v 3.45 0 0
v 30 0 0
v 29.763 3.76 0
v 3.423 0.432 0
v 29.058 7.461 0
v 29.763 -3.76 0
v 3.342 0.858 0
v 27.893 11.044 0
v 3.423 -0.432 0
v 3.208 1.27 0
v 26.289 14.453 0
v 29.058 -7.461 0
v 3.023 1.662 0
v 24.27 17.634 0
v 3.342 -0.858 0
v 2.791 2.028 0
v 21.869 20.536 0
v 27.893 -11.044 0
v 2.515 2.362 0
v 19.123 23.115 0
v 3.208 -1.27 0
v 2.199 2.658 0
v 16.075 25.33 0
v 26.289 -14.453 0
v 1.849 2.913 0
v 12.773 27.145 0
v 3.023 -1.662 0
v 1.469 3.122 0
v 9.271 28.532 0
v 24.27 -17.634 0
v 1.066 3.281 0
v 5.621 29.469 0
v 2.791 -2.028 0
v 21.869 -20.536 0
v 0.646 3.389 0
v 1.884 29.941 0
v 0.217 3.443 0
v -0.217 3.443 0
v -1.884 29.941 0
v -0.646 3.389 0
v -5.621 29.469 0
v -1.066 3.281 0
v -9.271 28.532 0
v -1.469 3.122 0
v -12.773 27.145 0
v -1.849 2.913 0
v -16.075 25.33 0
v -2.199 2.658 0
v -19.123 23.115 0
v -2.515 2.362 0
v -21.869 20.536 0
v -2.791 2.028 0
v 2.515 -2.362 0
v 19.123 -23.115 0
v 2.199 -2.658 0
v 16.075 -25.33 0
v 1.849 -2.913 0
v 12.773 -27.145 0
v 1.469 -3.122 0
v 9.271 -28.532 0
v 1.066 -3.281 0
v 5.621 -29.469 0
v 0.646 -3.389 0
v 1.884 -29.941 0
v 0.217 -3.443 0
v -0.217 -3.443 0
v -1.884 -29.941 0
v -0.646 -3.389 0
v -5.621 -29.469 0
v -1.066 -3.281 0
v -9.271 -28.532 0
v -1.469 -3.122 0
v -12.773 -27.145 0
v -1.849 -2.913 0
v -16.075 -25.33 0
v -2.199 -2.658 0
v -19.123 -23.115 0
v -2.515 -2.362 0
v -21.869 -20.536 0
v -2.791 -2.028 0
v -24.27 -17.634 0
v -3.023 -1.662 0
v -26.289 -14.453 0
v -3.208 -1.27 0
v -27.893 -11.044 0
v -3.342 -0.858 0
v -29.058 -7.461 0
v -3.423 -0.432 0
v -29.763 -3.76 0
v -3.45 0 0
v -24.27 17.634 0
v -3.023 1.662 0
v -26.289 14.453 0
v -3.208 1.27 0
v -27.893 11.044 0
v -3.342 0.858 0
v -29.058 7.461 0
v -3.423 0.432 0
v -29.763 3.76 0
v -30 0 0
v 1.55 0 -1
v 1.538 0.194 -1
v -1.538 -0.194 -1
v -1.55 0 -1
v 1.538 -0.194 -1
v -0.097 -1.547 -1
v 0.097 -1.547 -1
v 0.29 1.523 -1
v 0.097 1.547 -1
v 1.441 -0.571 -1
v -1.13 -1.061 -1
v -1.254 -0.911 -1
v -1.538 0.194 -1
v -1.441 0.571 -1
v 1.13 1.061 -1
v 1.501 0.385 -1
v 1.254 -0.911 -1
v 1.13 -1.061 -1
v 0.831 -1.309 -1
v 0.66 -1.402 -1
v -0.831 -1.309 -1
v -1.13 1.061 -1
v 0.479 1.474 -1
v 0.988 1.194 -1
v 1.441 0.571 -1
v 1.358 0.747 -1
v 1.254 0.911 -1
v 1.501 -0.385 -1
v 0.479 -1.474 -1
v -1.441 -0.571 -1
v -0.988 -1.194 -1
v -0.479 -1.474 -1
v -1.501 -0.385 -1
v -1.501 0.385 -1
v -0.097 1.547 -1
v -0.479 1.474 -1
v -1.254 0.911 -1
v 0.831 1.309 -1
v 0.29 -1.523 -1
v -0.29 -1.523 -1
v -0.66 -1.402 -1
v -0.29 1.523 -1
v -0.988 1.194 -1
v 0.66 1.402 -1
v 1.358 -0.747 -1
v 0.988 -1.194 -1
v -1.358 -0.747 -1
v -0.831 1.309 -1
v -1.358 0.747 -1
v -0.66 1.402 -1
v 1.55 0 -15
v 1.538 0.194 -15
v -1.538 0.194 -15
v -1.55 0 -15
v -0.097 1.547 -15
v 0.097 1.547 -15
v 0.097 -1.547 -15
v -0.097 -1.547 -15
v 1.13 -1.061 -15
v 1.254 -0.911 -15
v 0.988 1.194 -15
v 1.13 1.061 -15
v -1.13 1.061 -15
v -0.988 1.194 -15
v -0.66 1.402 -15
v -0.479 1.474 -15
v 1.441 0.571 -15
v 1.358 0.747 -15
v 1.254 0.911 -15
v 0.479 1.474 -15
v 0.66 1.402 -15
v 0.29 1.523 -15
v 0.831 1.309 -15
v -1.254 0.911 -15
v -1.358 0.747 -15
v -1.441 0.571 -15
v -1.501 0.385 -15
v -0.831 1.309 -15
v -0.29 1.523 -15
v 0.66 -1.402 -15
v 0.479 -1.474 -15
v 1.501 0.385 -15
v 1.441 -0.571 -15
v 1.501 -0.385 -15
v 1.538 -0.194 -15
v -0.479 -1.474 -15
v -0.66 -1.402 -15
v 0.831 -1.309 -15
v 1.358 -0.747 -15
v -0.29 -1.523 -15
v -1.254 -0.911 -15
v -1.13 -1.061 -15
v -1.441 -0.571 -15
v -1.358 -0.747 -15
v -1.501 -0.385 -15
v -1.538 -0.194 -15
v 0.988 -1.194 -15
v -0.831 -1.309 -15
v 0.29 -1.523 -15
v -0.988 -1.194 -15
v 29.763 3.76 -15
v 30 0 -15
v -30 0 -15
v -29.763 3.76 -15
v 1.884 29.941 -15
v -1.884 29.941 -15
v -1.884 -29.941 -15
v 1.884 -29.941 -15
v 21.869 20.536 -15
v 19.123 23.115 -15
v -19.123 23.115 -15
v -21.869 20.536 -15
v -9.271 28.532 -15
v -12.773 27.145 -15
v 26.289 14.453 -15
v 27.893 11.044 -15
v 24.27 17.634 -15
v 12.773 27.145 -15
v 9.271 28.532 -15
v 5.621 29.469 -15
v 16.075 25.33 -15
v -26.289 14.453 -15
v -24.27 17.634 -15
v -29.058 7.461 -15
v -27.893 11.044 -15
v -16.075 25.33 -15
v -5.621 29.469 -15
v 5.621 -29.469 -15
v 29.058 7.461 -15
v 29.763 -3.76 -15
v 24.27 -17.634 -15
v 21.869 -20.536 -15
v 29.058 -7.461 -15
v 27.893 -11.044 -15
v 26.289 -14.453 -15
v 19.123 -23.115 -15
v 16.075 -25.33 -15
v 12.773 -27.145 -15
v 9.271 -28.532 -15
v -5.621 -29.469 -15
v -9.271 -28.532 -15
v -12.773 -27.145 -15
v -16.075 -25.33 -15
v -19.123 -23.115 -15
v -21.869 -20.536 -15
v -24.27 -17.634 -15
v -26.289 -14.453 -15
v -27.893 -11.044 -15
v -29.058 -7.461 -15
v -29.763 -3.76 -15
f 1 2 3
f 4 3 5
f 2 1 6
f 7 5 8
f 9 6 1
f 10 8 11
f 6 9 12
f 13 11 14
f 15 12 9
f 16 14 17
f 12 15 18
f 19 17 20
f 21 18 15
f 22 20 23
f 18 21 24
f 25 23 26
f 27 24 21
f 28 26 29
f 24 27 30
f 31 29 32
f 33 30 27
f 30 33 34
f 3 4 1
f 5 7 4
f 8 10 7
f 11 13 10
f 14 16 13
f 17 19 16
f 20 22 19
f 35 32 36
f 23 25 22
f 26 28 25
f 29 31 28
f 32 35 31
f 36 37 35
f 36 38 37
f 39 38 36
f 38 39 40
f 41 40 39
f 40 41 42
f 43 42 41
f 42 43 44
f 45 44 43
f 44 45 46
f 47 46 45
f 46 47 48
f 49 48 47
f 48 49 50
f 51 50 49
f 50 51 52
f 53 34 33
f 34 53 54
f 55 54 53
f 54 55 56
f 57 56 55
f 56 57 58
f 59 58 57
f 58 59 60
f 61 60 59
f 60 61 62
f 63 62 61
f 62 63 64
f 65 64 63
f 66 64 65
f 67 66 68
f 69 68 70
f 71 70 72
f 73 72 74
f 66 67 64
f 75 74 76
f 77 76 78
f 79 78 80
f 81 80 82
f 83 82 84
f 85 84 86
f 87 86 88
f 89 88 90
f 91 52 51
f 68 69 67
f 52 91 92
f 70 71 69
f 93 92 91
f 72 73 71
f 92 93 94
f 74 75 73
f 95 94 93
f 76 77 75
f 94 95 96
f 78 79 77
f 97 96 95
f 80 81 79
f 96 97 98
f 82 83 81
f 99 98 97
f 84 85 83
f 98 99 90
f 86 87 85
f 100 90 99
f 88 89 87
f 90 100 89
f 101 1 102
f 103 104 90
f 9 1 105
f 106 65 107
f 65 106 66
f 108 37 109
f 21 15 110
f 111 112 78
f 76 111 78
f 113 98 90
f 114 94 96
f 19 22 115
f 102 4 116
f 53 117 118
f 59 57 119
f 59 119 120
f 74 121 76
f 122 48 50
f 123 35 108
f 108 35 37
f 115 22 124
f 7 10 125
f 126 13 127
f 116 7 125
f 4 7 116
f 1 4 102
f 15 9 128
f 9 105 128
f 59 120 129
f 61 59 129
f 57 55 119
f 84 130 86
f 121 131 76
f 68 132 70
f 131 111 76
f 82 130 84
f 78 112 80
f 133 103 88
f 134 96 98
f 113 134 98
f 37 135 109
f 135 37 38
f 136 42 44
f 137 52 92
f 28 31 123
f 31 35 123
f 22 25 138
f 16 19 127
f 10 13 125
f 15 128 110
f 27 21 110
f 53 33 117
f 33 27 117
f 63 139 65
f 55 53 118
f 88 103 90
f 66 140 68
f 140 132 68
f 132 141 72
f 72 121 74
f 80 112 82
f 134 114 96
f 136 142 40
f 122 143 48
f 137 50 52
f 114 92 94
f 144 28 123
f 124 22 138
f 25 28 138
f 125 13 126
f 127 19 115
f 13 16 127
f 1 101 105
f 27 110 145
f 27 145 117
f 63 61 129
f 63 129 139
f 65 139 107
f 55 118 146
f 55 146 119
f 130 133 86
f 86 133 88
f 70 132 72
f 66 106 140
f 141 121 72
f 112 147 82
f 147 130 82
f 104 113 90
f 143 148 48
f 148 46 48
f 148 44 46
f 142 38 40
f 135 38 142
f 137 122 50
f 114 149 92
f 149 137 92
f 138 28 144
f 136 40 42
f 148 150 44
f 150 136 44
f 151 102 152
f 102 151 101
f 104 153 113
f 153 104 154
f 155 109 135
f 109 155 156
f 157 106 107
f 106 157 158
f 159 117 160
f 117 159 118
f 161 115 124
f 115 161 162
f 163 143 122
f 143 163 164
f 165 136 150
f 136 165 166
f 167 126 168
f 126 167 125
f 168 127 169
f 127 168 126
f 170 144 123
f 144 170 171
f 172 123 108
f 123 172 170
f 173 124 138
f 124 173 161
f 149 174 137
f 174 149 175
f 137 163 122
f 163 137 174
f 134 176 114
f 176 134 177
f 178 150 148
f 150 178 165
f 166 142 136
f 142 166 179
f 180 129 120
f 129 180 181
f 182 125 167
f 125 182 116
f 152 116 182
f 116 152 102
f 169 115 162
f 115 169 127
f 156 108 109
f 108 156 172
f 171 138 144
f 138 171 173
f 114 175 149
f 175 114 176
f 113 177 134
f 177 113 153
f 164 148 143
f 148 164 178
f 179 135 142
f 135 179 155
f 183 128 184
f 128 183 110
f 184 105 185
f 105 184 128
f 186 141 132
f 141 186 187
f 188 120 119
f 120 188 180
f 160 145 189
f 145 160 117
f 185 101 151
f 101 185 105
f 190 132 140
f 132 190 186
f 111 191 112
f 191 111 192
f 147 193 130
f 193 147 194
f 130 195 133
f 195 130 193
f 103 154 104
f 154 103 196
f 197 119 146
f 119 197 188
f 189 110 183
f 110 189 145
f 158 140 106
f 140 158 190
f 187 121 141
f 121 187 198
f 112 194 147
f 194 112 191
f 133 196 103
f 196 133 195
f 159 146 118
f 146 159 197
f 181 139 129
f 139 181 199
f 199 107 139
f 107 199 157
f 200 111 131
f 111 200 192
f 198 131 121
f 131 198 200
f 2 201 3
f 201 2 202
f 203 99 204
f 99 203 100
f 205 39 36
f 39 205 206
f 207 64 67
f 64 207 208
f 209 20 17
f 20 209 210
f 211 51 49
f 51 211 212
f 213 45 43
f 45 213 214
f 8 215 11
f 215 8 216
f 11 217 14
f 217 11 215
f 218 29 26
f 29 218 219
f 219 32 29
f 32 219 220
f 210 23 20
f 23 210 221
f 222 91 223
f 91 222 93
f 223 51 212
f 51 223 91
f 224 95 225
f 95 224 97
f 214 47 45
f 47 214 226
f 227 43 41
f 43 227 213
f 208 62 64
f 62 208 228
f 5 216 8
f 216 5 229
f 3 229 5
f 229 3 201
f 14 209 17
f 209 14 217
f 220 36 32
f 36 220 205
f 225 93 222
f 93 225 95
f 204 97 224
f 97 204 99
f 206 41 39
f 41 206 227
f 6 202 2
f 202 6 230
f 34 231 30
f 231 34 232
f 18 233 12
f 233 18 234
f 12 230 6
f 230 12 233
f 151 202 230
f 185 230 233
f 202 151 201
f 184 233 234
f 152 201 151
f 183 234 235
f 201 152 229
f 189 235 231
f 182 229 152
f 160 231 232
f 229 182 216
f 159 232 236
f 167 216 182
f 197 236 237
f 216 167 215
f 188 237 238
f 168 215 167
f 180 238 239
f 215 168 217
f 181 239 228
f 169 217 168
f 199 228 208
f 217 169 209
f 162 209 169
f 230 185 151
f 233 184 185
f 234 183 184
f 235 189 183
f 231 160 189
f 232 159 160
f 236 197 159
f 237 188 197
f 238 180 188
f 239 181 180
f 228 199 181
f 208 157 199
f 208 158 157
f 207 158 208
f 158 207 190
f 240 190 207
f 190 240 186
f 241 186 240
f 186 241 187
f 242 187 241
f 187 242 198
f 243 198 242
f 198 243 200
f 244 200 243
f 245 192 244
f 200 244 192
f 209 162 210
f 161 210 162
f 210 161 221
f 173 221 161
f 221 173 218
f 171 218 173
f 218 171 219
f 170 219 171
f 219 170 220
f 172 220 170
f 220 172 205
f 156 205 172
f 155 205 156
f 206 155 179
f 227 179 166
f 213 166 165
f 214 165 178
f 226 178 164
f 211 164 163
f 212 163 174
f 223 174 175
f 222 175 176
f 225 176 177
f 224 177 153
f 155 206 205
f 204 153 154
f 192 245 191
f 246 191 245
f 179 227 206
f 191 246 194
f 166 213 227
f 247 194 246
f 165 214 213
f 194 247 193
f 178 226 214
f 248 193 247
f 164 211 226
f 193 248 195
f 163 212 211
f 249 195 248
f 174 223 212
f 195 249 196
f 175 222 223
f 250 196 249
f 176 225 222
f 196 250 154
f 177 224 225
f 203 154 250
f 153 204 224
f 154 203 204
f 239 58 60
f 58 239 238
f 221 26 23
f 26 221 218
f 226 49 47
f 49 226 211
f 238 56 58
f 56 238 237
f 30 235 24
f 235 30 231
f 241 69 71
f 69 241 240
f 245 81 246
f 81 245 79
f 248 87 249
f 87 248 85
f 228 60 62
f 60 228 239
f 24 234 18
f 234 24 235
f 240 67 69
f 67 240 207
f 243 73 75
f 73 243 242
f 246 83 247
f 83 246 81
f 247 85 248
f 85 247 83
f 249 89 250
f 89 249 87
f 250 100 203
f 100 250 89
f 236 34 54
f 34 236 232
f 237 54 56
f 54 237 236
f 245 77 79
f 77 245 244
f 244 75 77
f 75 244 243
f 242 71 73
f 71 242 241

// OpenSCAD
$fn = 50;


difference() {
	union() {
		translate(v = [0, 0, -15.0000000000]) {
			cylinder(h = 15, r = 30.0000000000);
		}
	}
	union() {
		translate(v = [0, 0, 0]) {
			rotate(a = [0, 0, 0]) {
				difference() {
					union() {
						translate(v = [0, 0, -18.0000000000]) {
							cylinder(h = 18, r = 1.2500000000);
						}
						translate(v = [0, 0, -1.0000000000]) {
							cylinder(h = 1.0000000000, r1 = 1.5500000000, r2 = 3.4500000000);
						}
						translate(v = [0, 0, -18.0000000000]) {
							cylinder(h = 18, r = 1.5500000000);
						}
						translate(v = [0, 0, -18.0000000000]) {
							cylinder(h = 18, r = 1.2500000000);
						}
					}
					union();
				}
			}
		}
	}
}
